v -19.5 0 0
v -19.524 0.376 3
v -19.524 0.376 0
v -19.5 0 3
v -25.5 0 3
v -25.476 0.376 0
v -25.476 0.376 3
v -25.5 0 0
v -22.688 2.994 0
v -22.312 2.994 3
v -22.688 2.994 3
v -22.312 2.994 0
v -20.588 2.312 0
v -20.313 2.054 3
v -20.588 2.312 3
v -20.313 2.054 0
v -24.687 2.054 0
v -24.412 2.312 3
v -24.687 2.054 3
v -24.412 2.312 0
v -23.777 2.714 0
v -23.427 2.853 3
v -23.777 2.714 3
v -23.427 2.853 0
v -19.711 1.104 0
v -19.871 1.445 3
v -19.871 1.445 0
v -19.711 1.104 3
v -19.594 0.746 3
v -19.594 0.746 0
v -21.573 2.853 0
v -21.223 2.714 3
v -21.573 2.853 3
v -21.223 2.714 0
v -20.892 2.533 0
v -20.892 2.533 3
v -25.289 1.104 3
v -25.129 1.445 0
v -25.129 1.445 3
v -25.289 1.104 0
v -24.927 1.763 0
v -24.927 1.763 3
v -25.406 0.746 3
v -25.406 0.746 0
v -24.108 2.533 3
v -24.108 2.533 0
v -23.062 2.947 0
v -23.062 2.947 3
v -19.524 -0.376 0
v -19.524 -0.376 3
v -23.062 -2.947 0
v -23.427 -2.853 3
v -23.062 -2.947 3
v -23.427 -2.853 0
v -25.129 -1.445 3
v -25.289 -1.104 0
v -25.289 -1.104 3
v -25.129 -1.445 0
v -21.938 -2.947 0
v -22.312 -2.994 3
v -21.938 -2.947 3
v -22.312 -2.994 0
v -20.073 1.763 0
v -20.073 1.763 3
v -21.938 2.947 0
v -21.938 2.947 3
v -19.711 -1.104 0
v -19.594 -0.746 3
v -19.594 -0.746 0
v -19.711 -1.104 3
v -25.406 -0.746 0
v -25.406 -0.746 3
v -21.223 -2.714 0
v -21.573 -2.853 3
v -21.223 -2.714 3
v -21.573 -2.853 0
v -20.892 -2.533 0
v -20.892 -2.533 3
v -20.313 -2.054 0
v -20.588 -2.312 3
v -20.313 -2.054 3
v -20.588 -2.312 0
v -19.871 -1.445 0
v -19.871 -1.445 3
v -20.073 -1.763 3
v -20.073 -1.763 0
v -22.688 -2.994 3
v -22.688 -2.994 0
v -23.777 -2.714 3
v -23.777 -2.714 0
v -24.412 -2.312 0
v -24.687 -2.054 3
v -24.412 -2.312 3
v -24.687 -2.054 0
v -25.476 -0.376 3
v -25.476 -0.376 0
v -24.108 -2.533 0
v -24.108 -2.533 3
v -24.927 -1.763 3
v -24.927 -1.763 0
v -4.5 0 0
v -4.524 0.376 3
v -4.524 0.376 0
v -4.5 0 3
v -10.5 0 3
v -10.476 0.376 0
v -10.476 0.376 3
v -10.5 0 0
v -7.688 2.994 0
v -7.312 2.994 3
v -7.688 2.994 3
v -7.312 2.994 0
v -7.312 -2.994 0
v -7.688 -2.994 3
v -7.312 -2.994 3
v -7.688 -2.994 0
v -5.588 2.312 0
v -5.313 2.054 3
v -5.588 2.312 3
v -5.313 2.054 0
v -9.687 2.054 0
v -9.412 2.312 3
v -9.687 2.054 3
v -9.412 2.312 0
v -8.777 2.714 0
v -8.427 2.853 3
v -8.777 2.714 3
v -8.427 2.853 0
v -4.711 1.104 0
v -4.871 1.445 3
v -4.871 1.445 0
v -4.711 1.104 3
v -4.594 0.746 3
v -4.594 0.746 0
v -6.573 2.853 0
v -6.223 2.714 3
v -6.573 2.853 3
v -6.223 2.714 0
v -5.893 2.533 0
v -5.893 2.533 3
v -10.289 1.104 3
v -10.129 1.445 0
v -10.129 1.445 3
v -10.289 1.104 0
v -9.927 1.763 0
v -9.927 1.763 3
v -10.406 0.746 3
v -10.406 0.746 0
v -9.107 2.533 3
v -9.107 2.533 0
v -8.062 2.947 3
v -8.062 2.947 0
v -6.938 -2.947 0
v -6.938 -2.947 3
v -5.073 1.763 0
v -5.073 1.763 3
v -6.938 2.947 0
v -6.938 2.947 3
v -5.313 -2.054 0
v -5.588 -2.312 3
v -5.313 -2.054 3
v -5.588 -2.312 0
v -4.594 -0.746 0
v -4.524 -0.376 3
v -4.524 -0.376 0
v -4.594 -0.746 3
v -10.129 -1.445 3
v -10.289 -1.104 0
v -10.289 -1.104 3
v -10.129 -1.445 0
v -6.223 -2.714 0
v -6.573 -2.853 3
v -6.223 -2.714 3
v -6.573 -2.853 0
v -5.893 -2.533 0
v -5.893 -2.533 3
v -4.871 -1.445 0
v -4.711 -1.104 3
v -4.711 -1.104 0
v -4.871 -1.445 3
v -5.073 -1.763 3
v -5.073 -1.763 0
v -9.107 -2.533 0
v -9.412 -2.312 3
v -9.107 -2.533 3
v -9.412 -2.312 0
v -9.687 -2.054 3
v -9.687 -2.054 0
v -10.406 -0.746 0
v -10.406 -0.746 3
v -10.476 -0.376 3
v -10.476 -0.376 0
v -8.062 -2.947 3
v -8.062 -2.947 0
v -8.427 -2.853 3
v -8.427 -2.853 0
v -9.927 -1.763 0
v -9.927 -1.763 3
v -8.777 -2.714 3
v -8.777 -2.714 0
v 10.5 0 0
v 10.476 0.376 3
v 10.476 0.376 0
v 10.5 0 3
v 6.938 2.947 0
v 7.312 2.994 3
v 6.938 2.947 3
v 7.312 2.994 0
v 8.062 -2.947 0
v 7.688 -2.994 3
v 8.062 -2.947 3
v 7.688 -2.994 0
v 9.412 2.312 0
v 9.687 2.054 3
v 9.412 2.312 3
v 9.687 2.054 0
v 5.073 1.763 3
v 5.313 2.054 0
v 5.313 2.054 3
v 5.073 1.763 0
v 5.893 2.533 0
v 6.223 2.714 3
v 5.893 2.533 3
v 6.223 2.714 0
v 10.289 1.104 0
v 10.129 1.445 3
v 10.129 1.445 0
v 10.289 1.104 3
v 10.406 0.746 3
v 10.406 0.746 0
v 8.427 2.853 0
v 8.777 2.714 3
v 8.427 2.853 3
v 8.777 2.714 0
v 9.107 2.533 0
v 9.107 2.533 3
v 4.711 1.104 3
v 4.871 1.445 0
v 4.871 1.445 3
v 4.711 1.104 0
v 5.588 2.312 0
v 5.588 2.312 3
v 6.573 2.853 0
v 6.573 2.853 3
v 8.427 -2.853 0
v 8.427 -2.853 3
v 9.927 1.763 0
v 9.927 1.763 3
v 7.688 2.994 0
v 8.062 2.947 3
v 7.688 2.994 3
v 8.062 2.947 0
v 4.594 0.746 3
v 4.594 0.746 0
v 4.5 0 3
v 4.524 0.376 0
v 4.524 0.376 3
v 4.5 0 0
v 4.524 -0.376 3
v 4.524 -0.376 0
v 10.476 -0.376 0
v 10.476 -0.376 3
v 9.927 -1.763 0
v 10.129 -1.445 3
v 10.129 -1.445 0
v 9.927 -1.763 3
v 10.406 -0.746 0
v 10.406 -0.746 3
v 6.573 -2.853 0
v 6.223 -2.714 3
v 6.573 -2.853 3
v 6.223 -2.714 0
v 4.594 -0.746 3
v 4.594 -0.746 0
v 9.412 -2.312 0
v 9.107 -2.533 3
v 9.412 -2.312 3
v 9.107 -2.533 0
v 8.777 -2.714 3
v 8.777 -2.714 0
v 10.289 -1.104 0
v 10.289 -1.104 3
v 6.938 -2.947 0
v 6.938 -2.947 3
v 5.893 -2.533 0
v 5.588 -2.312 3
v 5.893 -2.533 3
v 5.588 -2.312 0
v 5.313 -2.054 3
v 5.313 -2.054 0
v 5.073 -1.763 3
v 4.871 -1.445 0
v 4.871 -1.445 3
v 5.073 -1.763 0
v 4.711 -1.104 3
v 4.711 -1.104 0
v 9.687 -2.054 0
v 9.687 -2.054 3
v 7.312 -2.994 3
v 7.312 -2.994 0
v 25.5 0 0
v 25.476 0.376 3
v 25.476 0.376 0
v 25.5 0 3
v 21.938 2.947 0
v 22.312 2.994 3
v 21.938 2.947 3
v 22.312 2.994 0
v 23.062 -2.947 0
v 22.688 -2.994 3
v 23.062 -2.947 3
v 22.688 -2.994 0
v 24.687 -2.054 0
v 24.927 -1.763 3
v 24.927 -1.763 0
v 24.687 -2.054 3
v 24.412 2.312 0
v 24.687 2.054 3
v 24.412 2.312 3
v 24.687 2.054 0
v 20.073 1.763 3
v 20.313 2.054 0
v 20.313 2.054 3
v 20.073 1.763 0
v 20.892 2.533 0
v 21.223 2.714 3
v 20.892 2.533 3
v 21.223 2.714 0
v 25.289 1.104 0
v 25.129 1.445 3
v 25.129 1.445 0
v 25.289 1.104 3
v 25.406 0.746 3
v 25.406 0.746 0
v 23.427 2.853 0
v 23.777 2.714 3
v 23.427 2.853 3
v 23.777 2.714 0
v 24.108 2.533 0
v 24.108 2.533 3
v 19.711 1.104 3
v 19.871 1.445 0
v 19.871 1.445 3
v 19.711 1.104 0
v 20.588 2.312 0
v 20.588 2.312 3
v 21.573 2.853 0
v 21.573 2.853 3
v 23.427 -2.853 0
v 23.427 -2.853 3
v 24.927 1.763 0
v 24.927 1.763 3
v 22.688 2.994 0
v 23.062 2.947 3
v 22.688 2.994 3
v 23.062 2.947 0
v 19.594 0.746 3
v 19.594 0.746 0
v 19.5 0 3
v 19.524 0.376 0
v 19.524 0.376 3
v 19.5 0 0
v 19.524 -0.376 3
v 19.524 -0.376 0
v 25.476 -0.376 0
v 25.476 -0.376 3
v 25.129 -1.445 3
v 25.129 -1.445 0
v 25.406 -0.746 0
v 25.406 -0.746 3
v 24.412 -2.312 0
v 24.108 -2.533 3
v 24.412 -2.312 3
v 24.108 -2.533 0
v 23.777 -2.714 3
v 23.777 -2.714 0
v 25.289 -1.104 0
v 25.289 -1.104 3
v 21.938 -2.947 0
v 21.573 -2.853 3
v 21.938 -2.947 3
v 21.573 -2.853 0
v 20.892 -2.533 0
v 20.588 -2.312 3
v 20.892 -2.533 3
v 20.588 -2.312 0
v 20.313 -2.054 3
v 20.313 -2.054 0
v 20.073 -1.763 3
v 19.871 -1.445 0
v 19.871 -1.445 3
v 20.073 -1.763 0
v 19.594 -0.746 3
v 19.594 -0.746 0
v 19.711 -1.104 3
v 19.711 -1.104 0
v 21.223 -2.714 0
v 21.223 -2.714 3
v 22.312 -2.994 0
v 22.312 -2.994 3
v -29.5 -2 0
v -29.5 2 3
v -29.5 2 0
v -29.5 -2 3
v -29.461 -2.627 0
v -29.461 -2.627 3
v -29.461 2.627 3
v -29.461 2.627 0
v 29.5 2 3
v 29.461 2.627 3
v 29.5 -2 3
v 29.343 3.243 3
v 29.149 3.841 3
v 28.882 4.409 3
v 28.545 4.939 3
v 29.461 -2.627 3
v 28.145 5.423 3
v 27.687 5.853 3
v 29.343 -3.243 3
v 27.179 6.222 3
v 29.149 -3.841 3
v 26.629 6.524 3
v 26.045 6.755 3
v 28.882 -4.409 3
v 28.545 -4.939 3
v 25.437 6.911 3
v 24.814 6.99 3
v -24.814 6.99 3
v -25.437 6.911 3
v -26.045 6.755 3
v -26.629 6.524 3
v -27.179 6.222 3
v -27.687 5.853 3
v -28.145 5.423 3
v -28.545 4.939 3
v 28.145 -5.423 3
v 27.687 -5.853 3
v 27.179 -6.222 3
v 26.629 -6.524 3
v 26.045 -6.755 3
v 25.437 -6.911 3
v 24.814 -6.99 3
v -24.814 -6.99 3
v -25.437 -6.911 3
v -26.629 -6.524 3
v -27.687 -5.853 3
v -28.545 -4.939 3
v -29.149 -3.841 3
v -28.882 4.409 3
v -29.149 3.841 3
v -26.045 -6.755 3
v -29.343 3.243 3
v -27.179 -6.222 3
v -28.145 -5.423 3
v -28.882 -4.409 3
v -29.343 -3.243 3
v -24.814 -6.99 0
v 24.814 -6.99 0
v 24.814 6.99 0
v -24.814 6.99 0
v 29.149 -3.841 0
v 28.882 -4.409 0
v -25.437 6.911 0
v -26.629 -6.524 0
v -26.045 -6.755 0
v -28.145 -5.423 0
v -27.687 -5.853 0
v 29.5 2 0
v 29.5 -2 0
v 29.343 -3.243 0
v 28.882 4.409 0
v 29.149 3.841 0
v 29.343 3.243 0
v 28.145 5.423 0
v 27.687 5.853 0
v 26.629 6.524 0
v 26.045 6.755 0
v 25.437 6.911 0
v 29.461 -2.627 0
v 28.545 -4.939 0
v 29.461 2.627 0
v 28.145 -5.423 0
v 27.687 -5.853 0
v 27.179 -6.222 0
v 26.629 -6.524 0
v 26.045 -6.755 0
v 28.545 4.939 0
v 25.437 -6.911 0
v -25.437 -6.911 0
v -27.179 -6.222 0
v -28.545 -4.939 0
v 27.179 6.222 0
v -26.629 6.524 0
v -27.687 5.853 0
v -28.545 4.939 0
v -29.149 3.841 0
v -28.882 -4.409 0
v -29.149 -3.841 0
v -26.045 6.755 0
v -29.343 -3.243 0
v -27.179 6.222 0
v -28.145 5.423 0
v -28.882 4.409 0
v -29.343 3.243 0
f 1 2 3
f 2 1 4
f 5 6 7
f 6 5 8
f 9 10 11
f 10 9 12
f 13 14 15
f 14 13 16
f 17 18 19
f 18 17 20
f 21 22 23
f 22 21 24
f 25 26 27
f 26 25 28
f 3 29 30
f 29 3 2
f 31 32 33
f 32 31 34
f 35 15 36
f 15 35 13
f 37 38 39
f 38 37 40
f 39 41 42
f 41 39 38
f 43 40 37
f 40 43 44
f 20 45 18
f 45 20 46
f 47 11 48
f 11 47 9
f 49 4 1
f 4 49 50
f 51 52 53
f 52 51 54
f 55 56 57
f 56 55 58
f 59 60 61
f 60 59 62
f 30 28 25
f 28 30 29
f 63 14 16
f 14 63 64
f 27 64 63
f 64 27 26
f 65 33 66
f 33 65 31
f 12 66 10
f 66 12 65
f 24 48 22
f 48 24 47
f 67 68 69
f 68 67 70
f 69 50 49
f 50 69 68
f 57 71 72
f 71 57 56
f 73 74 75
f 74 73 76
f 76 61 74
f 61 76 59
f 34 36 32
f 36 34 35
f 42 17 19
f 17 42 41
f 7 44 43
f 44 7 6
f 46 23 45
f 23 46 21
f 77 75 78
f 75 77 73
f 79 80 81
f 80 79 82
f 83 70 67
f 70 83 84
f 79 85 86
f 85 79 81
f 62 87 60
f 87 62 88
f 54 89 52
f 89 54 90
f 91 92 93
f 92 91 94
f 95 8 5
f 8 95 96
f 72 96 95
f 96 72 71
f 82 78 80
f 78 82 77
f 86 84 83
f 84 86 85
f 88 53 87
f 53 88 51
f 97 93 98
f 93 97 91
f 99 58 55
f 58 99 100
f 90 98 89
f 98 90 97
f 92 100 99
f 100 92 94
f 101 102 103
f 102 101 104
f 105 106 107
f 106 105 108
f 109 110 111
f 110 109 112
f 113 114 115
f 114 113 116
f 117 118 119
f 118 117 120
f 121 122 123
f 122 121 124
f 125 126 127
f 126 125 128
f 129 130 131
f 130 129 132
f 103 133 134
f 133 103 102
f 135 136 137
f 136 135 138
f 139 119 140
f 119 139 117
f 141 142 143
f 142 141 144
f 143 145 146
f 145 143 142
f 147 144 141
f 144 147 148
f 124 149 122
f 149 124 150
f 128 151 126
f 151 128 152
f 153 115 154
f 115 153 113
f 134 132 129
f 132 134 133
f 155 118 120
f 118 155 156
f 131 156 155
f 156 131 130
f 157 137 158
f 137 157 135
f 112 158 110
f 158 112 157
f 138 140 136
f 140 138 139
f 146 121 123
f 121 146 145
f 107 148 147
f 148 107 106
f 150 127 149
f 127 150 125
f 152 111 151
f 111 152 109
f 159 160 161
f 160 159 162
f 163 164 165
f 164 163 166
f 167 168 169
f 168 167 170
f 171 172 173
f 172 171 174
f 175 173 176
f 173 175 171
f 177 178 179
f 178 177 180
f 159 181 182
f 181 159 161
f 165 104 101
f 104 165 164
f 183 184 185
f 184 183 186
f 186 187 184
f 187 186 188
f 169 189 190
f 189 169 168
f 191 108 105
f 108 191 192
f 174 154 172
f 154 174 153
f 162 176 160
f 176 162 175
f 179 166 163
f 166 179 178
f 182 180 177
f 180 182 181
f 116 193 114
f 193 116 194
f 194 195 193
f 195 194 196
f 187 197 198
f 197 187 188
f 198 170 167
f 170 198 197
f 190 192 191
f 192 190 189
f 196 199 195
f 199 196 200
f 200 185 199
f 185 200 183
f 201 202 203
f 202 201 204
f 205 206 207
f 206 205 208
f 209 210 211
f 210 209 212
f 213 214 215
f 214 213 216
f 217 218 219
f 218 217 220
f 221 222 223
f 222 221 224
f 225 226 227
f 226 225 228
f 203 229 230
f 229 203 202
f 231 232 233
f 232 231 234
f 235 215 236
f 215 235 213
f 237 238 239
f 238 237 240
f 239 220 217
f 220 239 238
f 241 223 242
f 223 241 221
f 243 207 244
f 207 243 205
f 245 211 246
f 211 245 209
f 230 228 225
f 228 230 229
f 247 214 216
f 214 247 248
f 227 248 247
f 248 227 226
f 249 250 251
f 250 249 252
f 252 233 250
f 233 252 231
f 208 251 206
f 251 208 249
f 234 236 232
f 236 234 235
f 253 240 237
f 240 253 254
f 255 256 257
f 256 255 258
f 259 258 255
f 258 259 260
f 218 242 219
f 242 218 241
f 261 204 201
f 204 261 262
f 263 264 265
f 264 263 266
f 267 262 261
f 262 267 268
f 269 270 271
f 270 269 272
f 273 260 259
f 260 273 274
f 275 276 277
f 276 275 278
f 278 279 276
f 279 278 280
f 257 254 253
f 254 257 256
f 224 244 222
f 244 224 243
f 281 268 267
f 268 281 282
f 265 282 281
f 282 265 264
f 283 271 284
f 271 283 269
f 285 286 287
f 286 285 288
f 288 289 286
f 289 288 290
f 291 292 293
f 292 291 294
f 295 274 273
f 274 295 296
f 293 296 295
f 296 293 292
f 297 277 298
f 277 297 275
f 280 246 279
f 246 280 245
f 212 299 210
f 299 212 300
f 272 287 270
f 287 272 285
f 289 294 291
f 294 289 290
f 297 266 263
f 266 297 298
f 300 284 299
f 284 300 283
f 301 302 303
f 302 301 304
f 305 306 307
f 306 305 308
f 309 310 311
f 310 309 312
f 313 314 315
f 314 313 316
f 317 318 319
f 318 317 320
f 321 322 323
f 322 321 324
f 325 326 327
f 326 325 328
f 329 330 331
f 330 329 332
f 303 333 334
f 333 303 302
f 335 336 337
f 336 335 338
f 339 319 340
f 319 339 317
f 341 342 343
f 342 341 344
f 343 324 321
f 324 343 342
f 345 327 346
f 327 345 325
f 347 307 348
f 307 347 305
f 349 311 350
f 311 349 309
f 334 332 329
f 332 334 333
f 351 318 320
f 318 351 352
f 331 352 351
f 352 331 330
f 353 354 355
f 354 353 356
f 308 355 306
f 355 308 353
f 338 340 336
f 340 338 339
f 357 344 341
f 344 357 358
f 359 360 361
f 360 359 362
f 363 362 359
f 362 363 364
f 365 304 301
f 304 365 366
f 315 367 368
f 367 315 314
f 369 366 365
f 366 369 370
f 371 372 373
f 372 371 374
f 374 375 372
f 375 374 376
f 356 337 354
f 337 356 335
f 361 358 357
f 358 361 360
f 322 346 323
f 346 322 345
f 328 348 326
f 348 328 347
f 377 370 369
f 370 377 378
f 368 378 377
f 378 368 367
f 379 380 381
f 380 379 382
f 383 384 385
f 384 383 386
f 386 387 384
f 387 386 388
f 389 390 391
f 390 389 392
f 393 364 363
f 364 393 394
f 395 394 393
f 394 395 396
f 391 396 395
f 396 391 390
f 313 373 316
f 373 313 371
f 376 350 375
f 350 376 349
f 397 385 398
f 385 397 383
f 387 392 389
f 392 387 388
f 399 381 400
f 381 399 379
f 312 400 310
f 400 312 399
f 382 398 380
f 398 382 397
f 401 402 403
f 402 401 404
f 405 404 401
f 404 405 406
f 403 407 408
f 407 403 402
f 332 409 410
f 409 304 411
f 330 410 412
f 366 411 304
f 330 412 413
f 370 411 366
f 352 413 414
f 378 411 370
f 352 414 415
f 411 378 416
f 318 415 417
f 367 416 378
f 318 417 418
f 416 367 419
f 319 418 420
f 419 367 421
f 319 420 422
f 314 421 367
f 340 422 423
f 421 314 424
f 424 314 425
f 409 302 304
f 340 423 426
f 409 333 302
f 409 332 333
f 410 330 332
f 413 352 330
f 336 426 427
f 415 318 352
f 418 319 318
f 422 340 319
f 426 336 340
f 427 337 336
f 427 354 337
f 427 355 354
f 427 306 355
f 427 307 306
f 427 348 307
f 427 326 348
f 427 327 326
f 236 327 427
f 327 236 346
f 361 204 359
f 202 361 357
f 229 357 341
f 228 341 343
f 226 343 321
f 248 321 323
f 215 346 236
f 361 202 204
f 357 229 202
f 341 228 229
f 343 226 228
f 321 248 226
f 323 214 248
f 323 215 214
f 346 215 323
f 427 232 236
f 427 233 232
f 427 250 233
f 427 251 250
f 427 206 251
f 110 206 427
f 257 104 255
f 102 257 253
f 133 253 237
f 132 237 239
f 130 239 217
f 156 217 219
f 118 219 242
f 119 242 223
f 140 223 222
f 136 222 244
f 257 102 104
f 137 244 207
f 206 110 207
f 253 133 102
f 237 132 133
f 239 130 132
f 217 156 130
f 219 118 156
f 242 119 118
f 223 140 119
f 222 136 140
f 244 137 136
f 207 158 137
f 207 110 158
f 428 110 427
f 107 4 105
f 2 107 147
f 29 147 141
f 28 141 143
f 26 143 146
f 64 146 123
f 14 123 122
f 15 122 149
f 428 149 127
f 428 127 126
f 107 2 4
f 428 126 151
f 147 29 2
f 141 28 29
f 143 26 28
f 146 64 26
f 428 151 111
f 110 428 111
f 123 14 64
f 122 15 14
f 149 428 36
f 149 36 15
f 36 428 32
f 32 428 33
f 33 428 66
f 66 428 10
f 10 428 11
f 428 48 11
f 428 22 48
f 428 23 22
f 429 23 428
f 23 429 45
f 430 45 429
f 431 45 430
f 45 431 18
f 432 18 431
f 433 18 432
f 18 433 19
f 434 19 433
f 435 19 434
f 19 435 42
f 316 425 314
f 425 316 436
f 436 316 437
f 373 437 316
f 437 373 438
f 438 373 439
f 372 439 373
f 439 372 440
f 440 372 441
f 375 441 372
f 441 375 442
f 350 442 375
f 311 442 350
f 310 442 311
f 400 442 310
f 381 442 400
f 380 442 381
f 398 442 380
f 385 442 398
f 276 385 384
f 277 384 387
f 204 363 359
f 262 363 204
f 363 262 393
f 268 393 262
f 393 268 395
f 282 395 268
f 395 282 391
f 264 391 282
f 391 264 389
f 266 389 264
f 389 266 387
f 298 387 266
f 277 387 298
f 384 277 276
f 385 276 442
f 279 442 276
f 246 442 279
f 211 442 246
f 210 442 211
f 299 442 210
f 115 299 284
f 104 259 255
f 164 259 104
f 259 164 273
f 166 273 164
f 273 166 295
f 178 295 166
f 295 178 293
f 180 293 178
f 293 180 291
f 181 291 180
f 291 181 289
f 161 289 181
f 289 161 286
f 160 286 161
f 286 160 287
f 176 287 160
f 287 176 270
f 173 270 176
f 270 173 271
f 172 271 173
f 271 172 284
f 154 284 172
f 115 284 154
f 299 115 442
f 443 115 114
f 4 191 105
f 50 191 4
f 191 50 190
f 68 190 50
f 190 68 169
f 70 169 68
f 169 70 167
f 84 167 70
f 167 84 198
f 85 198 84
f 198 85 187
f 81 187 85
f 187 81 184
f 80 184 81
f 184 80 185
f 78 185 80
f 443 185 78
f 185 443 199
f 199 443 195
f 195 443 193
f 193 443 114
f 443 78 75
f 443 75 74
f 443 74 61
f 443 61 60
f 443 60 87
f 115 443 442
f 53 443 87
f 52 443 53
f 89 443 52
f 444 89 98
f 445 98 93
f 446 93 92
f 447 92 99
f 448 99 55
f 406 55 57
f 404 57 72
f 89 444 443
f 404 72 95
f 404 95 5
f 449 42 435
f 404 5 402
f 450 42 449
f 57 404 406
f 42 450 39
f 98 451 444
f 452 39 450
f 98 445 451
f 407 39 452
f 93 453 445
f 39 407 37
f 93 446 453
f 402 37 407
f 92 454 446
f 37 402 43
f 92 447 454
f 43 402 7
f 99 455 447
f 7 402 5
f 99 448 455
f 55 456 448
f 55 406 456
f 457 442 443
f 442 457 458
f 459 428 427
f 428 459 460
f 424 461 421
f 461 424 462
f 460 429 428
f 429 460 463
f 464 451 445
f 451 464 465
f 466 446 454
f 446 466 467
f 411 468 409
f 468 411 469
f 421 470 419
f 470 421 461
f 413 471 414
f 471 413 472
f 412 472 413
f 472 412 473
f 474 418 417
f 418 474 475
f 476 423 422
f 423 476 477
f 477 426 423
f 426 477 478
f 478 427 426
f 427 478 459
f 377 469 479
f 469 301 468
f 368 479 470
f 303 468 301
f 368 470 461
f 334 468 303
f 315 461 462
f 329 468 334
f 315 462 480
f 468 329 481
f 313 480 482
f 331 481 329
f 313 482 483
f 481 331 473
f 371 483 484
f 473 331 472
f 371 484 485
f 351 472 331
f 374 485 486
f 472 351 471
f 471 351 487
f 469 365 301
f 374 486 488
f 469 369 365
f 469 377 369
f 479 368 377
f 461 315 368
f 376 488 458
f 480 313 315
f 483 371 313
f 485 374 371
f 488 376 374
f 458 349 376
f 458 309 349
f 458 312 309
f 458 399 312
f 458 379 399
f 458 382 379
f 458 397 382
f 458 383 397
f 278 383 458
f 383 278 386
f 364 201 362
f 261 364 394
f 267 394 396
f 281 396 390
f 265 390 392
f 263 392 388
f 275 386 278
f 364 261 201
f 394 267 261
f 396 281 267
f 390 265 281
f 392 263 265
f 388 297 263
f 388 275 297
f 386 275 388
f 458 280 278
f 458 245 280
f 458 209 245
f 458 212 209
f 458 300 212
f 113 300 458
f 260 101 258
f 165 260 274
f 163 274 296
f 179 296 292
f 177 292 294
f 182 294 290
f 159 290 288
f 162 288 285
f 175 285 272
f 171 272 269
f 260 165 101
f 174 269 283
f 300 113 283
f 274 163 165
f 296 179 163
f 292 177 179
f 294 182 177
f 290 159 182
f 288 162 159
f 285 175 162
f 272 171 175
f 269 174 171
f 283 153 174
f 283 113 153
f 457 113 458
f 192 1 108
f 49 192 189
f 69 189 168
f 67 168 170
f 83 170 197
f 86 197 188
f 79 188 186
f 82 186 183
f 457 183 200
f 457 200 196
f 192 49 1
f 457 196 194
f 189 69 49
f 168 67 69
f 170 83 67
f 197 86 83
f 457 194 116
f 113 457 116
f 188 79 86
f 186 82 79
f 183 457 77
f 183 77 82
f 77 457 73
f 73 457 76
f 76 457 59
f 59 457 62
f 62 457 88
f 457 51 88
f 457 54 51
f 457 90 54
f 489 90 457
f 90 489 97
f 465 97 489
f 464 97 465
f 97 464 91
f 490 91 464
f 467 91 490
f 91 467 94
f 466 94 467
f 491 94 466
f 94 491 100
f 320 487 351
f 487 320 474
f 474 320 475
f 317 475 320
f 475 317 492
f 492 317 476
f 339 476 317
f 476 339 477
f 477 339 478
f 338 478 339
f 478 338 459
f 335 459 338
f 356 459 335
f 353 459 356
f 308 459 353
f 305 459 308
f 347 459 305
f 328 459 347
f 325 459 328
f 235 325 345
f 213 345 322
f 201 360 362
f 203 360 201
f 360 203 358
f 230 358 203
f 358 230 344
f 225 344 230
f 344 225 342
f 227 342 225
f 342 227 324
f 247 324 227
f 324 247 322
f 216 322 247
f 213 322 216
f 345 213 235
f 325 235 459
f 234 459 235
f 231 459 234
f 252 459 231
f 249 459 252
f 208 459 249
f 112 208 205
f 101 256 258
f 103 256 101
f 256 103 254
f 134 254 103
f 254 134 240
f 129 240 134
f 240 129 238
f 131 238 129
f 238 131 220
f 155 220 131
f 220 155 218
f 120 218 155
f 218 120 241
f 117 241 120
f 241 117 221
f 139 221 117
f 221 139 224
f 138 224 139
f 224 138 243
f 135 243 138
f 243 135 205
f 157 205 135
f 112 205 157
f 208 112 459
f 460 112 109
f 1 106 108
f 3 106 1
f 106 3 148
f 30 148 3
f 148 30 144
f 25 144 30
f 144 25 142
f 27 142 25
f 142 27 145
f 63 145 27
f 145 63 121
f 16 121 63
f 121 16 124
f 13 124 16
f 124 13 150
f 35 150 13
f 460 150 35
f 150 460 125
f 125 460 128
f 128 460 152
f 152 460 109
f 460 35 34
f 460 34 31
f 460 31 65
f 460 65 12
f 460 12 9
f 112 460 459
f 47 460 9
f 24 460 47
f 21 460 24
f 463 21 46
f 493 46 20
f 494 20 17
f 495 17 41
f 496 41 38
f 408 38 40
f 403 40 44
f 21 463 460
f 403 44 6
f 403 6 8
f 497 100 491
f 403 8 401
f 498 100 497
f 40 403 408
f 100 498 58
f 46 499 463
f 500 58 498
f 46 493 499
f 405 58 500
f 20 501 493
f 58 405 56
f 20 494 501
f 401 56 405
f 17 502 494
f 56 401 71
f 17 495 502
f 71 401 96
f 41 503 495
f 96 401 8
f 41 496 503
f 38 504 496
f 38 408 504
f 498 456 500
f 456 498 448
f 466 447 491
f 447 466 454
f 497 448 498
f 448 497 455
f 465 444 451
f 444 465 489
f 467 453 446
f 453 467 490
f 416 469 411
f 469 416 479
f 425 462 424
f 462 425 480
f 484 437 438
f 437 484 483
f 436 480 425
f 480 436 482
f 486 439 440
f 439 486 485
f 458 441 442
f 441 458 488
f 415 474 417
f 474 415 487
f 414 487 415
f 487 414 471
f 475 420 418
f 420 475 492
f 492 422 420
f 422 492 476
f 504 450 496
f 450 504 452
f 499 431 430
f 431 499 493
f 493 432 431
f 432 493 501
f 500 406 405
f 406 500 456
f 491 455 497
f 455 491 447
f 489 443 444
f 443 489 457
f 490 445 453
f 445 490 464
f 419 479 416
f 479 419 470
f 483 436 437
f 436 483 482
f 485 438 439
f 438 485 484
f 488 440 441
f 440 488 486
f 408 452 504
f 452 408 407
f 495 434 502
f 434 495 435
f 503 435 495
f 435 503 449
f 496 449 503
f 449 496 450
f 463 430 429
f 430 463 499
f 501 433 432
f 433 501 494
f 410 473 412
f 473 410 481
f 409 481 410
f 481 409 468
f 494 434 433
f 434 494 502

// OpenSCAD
$fn = 50;


difference() {
	union() {
		hull() {
			translate(v = [-24.5000000000, 2.0000000000, 0]) {
				cylinder(h = 3, r = 5);
			}
			translate(v = [24.5000000000, 2.0000000000, 0]) {
				cylinder(h = 3, r = 5);
			}
			translate(v = [-24.5000000000, -2.0000000000, 0]) {
				cylinder(h = 3, r = 5);
			}
			translate(v = [24.5000000000, -2.0000000000, 0]) {
				cylinder(h = 3, r = 5);
			}
		}
	}
	union() {
		translate(v = [-22.5000000000, 0.0000000000, 0]) {
			translate(v = [0, 0, -100]) {
				cylinder(h = 200, r = 3.0000000000);
			}
		}
		translate(v = [-7.5000000000, 0.0000000000, 0]) {
			translate(v = [0, 0, -100]) {
				cylinder(h = 200, r = 3.0000000000);
			}
		}
		translate(v = [7.5000000000, 0.0000000000, 0]) {
			translate(v = [0, 0, -100]) {
				cylinder(h = 200, r = 3.0000000000);
			}
		}
		translate(v = [22.5000000000, 0.0000000000, 0]) {
			translate(v = [0, 0, -100]) {
				cylinder(h = 200, r = 3.0000000000);
			}
		}
	}
}
